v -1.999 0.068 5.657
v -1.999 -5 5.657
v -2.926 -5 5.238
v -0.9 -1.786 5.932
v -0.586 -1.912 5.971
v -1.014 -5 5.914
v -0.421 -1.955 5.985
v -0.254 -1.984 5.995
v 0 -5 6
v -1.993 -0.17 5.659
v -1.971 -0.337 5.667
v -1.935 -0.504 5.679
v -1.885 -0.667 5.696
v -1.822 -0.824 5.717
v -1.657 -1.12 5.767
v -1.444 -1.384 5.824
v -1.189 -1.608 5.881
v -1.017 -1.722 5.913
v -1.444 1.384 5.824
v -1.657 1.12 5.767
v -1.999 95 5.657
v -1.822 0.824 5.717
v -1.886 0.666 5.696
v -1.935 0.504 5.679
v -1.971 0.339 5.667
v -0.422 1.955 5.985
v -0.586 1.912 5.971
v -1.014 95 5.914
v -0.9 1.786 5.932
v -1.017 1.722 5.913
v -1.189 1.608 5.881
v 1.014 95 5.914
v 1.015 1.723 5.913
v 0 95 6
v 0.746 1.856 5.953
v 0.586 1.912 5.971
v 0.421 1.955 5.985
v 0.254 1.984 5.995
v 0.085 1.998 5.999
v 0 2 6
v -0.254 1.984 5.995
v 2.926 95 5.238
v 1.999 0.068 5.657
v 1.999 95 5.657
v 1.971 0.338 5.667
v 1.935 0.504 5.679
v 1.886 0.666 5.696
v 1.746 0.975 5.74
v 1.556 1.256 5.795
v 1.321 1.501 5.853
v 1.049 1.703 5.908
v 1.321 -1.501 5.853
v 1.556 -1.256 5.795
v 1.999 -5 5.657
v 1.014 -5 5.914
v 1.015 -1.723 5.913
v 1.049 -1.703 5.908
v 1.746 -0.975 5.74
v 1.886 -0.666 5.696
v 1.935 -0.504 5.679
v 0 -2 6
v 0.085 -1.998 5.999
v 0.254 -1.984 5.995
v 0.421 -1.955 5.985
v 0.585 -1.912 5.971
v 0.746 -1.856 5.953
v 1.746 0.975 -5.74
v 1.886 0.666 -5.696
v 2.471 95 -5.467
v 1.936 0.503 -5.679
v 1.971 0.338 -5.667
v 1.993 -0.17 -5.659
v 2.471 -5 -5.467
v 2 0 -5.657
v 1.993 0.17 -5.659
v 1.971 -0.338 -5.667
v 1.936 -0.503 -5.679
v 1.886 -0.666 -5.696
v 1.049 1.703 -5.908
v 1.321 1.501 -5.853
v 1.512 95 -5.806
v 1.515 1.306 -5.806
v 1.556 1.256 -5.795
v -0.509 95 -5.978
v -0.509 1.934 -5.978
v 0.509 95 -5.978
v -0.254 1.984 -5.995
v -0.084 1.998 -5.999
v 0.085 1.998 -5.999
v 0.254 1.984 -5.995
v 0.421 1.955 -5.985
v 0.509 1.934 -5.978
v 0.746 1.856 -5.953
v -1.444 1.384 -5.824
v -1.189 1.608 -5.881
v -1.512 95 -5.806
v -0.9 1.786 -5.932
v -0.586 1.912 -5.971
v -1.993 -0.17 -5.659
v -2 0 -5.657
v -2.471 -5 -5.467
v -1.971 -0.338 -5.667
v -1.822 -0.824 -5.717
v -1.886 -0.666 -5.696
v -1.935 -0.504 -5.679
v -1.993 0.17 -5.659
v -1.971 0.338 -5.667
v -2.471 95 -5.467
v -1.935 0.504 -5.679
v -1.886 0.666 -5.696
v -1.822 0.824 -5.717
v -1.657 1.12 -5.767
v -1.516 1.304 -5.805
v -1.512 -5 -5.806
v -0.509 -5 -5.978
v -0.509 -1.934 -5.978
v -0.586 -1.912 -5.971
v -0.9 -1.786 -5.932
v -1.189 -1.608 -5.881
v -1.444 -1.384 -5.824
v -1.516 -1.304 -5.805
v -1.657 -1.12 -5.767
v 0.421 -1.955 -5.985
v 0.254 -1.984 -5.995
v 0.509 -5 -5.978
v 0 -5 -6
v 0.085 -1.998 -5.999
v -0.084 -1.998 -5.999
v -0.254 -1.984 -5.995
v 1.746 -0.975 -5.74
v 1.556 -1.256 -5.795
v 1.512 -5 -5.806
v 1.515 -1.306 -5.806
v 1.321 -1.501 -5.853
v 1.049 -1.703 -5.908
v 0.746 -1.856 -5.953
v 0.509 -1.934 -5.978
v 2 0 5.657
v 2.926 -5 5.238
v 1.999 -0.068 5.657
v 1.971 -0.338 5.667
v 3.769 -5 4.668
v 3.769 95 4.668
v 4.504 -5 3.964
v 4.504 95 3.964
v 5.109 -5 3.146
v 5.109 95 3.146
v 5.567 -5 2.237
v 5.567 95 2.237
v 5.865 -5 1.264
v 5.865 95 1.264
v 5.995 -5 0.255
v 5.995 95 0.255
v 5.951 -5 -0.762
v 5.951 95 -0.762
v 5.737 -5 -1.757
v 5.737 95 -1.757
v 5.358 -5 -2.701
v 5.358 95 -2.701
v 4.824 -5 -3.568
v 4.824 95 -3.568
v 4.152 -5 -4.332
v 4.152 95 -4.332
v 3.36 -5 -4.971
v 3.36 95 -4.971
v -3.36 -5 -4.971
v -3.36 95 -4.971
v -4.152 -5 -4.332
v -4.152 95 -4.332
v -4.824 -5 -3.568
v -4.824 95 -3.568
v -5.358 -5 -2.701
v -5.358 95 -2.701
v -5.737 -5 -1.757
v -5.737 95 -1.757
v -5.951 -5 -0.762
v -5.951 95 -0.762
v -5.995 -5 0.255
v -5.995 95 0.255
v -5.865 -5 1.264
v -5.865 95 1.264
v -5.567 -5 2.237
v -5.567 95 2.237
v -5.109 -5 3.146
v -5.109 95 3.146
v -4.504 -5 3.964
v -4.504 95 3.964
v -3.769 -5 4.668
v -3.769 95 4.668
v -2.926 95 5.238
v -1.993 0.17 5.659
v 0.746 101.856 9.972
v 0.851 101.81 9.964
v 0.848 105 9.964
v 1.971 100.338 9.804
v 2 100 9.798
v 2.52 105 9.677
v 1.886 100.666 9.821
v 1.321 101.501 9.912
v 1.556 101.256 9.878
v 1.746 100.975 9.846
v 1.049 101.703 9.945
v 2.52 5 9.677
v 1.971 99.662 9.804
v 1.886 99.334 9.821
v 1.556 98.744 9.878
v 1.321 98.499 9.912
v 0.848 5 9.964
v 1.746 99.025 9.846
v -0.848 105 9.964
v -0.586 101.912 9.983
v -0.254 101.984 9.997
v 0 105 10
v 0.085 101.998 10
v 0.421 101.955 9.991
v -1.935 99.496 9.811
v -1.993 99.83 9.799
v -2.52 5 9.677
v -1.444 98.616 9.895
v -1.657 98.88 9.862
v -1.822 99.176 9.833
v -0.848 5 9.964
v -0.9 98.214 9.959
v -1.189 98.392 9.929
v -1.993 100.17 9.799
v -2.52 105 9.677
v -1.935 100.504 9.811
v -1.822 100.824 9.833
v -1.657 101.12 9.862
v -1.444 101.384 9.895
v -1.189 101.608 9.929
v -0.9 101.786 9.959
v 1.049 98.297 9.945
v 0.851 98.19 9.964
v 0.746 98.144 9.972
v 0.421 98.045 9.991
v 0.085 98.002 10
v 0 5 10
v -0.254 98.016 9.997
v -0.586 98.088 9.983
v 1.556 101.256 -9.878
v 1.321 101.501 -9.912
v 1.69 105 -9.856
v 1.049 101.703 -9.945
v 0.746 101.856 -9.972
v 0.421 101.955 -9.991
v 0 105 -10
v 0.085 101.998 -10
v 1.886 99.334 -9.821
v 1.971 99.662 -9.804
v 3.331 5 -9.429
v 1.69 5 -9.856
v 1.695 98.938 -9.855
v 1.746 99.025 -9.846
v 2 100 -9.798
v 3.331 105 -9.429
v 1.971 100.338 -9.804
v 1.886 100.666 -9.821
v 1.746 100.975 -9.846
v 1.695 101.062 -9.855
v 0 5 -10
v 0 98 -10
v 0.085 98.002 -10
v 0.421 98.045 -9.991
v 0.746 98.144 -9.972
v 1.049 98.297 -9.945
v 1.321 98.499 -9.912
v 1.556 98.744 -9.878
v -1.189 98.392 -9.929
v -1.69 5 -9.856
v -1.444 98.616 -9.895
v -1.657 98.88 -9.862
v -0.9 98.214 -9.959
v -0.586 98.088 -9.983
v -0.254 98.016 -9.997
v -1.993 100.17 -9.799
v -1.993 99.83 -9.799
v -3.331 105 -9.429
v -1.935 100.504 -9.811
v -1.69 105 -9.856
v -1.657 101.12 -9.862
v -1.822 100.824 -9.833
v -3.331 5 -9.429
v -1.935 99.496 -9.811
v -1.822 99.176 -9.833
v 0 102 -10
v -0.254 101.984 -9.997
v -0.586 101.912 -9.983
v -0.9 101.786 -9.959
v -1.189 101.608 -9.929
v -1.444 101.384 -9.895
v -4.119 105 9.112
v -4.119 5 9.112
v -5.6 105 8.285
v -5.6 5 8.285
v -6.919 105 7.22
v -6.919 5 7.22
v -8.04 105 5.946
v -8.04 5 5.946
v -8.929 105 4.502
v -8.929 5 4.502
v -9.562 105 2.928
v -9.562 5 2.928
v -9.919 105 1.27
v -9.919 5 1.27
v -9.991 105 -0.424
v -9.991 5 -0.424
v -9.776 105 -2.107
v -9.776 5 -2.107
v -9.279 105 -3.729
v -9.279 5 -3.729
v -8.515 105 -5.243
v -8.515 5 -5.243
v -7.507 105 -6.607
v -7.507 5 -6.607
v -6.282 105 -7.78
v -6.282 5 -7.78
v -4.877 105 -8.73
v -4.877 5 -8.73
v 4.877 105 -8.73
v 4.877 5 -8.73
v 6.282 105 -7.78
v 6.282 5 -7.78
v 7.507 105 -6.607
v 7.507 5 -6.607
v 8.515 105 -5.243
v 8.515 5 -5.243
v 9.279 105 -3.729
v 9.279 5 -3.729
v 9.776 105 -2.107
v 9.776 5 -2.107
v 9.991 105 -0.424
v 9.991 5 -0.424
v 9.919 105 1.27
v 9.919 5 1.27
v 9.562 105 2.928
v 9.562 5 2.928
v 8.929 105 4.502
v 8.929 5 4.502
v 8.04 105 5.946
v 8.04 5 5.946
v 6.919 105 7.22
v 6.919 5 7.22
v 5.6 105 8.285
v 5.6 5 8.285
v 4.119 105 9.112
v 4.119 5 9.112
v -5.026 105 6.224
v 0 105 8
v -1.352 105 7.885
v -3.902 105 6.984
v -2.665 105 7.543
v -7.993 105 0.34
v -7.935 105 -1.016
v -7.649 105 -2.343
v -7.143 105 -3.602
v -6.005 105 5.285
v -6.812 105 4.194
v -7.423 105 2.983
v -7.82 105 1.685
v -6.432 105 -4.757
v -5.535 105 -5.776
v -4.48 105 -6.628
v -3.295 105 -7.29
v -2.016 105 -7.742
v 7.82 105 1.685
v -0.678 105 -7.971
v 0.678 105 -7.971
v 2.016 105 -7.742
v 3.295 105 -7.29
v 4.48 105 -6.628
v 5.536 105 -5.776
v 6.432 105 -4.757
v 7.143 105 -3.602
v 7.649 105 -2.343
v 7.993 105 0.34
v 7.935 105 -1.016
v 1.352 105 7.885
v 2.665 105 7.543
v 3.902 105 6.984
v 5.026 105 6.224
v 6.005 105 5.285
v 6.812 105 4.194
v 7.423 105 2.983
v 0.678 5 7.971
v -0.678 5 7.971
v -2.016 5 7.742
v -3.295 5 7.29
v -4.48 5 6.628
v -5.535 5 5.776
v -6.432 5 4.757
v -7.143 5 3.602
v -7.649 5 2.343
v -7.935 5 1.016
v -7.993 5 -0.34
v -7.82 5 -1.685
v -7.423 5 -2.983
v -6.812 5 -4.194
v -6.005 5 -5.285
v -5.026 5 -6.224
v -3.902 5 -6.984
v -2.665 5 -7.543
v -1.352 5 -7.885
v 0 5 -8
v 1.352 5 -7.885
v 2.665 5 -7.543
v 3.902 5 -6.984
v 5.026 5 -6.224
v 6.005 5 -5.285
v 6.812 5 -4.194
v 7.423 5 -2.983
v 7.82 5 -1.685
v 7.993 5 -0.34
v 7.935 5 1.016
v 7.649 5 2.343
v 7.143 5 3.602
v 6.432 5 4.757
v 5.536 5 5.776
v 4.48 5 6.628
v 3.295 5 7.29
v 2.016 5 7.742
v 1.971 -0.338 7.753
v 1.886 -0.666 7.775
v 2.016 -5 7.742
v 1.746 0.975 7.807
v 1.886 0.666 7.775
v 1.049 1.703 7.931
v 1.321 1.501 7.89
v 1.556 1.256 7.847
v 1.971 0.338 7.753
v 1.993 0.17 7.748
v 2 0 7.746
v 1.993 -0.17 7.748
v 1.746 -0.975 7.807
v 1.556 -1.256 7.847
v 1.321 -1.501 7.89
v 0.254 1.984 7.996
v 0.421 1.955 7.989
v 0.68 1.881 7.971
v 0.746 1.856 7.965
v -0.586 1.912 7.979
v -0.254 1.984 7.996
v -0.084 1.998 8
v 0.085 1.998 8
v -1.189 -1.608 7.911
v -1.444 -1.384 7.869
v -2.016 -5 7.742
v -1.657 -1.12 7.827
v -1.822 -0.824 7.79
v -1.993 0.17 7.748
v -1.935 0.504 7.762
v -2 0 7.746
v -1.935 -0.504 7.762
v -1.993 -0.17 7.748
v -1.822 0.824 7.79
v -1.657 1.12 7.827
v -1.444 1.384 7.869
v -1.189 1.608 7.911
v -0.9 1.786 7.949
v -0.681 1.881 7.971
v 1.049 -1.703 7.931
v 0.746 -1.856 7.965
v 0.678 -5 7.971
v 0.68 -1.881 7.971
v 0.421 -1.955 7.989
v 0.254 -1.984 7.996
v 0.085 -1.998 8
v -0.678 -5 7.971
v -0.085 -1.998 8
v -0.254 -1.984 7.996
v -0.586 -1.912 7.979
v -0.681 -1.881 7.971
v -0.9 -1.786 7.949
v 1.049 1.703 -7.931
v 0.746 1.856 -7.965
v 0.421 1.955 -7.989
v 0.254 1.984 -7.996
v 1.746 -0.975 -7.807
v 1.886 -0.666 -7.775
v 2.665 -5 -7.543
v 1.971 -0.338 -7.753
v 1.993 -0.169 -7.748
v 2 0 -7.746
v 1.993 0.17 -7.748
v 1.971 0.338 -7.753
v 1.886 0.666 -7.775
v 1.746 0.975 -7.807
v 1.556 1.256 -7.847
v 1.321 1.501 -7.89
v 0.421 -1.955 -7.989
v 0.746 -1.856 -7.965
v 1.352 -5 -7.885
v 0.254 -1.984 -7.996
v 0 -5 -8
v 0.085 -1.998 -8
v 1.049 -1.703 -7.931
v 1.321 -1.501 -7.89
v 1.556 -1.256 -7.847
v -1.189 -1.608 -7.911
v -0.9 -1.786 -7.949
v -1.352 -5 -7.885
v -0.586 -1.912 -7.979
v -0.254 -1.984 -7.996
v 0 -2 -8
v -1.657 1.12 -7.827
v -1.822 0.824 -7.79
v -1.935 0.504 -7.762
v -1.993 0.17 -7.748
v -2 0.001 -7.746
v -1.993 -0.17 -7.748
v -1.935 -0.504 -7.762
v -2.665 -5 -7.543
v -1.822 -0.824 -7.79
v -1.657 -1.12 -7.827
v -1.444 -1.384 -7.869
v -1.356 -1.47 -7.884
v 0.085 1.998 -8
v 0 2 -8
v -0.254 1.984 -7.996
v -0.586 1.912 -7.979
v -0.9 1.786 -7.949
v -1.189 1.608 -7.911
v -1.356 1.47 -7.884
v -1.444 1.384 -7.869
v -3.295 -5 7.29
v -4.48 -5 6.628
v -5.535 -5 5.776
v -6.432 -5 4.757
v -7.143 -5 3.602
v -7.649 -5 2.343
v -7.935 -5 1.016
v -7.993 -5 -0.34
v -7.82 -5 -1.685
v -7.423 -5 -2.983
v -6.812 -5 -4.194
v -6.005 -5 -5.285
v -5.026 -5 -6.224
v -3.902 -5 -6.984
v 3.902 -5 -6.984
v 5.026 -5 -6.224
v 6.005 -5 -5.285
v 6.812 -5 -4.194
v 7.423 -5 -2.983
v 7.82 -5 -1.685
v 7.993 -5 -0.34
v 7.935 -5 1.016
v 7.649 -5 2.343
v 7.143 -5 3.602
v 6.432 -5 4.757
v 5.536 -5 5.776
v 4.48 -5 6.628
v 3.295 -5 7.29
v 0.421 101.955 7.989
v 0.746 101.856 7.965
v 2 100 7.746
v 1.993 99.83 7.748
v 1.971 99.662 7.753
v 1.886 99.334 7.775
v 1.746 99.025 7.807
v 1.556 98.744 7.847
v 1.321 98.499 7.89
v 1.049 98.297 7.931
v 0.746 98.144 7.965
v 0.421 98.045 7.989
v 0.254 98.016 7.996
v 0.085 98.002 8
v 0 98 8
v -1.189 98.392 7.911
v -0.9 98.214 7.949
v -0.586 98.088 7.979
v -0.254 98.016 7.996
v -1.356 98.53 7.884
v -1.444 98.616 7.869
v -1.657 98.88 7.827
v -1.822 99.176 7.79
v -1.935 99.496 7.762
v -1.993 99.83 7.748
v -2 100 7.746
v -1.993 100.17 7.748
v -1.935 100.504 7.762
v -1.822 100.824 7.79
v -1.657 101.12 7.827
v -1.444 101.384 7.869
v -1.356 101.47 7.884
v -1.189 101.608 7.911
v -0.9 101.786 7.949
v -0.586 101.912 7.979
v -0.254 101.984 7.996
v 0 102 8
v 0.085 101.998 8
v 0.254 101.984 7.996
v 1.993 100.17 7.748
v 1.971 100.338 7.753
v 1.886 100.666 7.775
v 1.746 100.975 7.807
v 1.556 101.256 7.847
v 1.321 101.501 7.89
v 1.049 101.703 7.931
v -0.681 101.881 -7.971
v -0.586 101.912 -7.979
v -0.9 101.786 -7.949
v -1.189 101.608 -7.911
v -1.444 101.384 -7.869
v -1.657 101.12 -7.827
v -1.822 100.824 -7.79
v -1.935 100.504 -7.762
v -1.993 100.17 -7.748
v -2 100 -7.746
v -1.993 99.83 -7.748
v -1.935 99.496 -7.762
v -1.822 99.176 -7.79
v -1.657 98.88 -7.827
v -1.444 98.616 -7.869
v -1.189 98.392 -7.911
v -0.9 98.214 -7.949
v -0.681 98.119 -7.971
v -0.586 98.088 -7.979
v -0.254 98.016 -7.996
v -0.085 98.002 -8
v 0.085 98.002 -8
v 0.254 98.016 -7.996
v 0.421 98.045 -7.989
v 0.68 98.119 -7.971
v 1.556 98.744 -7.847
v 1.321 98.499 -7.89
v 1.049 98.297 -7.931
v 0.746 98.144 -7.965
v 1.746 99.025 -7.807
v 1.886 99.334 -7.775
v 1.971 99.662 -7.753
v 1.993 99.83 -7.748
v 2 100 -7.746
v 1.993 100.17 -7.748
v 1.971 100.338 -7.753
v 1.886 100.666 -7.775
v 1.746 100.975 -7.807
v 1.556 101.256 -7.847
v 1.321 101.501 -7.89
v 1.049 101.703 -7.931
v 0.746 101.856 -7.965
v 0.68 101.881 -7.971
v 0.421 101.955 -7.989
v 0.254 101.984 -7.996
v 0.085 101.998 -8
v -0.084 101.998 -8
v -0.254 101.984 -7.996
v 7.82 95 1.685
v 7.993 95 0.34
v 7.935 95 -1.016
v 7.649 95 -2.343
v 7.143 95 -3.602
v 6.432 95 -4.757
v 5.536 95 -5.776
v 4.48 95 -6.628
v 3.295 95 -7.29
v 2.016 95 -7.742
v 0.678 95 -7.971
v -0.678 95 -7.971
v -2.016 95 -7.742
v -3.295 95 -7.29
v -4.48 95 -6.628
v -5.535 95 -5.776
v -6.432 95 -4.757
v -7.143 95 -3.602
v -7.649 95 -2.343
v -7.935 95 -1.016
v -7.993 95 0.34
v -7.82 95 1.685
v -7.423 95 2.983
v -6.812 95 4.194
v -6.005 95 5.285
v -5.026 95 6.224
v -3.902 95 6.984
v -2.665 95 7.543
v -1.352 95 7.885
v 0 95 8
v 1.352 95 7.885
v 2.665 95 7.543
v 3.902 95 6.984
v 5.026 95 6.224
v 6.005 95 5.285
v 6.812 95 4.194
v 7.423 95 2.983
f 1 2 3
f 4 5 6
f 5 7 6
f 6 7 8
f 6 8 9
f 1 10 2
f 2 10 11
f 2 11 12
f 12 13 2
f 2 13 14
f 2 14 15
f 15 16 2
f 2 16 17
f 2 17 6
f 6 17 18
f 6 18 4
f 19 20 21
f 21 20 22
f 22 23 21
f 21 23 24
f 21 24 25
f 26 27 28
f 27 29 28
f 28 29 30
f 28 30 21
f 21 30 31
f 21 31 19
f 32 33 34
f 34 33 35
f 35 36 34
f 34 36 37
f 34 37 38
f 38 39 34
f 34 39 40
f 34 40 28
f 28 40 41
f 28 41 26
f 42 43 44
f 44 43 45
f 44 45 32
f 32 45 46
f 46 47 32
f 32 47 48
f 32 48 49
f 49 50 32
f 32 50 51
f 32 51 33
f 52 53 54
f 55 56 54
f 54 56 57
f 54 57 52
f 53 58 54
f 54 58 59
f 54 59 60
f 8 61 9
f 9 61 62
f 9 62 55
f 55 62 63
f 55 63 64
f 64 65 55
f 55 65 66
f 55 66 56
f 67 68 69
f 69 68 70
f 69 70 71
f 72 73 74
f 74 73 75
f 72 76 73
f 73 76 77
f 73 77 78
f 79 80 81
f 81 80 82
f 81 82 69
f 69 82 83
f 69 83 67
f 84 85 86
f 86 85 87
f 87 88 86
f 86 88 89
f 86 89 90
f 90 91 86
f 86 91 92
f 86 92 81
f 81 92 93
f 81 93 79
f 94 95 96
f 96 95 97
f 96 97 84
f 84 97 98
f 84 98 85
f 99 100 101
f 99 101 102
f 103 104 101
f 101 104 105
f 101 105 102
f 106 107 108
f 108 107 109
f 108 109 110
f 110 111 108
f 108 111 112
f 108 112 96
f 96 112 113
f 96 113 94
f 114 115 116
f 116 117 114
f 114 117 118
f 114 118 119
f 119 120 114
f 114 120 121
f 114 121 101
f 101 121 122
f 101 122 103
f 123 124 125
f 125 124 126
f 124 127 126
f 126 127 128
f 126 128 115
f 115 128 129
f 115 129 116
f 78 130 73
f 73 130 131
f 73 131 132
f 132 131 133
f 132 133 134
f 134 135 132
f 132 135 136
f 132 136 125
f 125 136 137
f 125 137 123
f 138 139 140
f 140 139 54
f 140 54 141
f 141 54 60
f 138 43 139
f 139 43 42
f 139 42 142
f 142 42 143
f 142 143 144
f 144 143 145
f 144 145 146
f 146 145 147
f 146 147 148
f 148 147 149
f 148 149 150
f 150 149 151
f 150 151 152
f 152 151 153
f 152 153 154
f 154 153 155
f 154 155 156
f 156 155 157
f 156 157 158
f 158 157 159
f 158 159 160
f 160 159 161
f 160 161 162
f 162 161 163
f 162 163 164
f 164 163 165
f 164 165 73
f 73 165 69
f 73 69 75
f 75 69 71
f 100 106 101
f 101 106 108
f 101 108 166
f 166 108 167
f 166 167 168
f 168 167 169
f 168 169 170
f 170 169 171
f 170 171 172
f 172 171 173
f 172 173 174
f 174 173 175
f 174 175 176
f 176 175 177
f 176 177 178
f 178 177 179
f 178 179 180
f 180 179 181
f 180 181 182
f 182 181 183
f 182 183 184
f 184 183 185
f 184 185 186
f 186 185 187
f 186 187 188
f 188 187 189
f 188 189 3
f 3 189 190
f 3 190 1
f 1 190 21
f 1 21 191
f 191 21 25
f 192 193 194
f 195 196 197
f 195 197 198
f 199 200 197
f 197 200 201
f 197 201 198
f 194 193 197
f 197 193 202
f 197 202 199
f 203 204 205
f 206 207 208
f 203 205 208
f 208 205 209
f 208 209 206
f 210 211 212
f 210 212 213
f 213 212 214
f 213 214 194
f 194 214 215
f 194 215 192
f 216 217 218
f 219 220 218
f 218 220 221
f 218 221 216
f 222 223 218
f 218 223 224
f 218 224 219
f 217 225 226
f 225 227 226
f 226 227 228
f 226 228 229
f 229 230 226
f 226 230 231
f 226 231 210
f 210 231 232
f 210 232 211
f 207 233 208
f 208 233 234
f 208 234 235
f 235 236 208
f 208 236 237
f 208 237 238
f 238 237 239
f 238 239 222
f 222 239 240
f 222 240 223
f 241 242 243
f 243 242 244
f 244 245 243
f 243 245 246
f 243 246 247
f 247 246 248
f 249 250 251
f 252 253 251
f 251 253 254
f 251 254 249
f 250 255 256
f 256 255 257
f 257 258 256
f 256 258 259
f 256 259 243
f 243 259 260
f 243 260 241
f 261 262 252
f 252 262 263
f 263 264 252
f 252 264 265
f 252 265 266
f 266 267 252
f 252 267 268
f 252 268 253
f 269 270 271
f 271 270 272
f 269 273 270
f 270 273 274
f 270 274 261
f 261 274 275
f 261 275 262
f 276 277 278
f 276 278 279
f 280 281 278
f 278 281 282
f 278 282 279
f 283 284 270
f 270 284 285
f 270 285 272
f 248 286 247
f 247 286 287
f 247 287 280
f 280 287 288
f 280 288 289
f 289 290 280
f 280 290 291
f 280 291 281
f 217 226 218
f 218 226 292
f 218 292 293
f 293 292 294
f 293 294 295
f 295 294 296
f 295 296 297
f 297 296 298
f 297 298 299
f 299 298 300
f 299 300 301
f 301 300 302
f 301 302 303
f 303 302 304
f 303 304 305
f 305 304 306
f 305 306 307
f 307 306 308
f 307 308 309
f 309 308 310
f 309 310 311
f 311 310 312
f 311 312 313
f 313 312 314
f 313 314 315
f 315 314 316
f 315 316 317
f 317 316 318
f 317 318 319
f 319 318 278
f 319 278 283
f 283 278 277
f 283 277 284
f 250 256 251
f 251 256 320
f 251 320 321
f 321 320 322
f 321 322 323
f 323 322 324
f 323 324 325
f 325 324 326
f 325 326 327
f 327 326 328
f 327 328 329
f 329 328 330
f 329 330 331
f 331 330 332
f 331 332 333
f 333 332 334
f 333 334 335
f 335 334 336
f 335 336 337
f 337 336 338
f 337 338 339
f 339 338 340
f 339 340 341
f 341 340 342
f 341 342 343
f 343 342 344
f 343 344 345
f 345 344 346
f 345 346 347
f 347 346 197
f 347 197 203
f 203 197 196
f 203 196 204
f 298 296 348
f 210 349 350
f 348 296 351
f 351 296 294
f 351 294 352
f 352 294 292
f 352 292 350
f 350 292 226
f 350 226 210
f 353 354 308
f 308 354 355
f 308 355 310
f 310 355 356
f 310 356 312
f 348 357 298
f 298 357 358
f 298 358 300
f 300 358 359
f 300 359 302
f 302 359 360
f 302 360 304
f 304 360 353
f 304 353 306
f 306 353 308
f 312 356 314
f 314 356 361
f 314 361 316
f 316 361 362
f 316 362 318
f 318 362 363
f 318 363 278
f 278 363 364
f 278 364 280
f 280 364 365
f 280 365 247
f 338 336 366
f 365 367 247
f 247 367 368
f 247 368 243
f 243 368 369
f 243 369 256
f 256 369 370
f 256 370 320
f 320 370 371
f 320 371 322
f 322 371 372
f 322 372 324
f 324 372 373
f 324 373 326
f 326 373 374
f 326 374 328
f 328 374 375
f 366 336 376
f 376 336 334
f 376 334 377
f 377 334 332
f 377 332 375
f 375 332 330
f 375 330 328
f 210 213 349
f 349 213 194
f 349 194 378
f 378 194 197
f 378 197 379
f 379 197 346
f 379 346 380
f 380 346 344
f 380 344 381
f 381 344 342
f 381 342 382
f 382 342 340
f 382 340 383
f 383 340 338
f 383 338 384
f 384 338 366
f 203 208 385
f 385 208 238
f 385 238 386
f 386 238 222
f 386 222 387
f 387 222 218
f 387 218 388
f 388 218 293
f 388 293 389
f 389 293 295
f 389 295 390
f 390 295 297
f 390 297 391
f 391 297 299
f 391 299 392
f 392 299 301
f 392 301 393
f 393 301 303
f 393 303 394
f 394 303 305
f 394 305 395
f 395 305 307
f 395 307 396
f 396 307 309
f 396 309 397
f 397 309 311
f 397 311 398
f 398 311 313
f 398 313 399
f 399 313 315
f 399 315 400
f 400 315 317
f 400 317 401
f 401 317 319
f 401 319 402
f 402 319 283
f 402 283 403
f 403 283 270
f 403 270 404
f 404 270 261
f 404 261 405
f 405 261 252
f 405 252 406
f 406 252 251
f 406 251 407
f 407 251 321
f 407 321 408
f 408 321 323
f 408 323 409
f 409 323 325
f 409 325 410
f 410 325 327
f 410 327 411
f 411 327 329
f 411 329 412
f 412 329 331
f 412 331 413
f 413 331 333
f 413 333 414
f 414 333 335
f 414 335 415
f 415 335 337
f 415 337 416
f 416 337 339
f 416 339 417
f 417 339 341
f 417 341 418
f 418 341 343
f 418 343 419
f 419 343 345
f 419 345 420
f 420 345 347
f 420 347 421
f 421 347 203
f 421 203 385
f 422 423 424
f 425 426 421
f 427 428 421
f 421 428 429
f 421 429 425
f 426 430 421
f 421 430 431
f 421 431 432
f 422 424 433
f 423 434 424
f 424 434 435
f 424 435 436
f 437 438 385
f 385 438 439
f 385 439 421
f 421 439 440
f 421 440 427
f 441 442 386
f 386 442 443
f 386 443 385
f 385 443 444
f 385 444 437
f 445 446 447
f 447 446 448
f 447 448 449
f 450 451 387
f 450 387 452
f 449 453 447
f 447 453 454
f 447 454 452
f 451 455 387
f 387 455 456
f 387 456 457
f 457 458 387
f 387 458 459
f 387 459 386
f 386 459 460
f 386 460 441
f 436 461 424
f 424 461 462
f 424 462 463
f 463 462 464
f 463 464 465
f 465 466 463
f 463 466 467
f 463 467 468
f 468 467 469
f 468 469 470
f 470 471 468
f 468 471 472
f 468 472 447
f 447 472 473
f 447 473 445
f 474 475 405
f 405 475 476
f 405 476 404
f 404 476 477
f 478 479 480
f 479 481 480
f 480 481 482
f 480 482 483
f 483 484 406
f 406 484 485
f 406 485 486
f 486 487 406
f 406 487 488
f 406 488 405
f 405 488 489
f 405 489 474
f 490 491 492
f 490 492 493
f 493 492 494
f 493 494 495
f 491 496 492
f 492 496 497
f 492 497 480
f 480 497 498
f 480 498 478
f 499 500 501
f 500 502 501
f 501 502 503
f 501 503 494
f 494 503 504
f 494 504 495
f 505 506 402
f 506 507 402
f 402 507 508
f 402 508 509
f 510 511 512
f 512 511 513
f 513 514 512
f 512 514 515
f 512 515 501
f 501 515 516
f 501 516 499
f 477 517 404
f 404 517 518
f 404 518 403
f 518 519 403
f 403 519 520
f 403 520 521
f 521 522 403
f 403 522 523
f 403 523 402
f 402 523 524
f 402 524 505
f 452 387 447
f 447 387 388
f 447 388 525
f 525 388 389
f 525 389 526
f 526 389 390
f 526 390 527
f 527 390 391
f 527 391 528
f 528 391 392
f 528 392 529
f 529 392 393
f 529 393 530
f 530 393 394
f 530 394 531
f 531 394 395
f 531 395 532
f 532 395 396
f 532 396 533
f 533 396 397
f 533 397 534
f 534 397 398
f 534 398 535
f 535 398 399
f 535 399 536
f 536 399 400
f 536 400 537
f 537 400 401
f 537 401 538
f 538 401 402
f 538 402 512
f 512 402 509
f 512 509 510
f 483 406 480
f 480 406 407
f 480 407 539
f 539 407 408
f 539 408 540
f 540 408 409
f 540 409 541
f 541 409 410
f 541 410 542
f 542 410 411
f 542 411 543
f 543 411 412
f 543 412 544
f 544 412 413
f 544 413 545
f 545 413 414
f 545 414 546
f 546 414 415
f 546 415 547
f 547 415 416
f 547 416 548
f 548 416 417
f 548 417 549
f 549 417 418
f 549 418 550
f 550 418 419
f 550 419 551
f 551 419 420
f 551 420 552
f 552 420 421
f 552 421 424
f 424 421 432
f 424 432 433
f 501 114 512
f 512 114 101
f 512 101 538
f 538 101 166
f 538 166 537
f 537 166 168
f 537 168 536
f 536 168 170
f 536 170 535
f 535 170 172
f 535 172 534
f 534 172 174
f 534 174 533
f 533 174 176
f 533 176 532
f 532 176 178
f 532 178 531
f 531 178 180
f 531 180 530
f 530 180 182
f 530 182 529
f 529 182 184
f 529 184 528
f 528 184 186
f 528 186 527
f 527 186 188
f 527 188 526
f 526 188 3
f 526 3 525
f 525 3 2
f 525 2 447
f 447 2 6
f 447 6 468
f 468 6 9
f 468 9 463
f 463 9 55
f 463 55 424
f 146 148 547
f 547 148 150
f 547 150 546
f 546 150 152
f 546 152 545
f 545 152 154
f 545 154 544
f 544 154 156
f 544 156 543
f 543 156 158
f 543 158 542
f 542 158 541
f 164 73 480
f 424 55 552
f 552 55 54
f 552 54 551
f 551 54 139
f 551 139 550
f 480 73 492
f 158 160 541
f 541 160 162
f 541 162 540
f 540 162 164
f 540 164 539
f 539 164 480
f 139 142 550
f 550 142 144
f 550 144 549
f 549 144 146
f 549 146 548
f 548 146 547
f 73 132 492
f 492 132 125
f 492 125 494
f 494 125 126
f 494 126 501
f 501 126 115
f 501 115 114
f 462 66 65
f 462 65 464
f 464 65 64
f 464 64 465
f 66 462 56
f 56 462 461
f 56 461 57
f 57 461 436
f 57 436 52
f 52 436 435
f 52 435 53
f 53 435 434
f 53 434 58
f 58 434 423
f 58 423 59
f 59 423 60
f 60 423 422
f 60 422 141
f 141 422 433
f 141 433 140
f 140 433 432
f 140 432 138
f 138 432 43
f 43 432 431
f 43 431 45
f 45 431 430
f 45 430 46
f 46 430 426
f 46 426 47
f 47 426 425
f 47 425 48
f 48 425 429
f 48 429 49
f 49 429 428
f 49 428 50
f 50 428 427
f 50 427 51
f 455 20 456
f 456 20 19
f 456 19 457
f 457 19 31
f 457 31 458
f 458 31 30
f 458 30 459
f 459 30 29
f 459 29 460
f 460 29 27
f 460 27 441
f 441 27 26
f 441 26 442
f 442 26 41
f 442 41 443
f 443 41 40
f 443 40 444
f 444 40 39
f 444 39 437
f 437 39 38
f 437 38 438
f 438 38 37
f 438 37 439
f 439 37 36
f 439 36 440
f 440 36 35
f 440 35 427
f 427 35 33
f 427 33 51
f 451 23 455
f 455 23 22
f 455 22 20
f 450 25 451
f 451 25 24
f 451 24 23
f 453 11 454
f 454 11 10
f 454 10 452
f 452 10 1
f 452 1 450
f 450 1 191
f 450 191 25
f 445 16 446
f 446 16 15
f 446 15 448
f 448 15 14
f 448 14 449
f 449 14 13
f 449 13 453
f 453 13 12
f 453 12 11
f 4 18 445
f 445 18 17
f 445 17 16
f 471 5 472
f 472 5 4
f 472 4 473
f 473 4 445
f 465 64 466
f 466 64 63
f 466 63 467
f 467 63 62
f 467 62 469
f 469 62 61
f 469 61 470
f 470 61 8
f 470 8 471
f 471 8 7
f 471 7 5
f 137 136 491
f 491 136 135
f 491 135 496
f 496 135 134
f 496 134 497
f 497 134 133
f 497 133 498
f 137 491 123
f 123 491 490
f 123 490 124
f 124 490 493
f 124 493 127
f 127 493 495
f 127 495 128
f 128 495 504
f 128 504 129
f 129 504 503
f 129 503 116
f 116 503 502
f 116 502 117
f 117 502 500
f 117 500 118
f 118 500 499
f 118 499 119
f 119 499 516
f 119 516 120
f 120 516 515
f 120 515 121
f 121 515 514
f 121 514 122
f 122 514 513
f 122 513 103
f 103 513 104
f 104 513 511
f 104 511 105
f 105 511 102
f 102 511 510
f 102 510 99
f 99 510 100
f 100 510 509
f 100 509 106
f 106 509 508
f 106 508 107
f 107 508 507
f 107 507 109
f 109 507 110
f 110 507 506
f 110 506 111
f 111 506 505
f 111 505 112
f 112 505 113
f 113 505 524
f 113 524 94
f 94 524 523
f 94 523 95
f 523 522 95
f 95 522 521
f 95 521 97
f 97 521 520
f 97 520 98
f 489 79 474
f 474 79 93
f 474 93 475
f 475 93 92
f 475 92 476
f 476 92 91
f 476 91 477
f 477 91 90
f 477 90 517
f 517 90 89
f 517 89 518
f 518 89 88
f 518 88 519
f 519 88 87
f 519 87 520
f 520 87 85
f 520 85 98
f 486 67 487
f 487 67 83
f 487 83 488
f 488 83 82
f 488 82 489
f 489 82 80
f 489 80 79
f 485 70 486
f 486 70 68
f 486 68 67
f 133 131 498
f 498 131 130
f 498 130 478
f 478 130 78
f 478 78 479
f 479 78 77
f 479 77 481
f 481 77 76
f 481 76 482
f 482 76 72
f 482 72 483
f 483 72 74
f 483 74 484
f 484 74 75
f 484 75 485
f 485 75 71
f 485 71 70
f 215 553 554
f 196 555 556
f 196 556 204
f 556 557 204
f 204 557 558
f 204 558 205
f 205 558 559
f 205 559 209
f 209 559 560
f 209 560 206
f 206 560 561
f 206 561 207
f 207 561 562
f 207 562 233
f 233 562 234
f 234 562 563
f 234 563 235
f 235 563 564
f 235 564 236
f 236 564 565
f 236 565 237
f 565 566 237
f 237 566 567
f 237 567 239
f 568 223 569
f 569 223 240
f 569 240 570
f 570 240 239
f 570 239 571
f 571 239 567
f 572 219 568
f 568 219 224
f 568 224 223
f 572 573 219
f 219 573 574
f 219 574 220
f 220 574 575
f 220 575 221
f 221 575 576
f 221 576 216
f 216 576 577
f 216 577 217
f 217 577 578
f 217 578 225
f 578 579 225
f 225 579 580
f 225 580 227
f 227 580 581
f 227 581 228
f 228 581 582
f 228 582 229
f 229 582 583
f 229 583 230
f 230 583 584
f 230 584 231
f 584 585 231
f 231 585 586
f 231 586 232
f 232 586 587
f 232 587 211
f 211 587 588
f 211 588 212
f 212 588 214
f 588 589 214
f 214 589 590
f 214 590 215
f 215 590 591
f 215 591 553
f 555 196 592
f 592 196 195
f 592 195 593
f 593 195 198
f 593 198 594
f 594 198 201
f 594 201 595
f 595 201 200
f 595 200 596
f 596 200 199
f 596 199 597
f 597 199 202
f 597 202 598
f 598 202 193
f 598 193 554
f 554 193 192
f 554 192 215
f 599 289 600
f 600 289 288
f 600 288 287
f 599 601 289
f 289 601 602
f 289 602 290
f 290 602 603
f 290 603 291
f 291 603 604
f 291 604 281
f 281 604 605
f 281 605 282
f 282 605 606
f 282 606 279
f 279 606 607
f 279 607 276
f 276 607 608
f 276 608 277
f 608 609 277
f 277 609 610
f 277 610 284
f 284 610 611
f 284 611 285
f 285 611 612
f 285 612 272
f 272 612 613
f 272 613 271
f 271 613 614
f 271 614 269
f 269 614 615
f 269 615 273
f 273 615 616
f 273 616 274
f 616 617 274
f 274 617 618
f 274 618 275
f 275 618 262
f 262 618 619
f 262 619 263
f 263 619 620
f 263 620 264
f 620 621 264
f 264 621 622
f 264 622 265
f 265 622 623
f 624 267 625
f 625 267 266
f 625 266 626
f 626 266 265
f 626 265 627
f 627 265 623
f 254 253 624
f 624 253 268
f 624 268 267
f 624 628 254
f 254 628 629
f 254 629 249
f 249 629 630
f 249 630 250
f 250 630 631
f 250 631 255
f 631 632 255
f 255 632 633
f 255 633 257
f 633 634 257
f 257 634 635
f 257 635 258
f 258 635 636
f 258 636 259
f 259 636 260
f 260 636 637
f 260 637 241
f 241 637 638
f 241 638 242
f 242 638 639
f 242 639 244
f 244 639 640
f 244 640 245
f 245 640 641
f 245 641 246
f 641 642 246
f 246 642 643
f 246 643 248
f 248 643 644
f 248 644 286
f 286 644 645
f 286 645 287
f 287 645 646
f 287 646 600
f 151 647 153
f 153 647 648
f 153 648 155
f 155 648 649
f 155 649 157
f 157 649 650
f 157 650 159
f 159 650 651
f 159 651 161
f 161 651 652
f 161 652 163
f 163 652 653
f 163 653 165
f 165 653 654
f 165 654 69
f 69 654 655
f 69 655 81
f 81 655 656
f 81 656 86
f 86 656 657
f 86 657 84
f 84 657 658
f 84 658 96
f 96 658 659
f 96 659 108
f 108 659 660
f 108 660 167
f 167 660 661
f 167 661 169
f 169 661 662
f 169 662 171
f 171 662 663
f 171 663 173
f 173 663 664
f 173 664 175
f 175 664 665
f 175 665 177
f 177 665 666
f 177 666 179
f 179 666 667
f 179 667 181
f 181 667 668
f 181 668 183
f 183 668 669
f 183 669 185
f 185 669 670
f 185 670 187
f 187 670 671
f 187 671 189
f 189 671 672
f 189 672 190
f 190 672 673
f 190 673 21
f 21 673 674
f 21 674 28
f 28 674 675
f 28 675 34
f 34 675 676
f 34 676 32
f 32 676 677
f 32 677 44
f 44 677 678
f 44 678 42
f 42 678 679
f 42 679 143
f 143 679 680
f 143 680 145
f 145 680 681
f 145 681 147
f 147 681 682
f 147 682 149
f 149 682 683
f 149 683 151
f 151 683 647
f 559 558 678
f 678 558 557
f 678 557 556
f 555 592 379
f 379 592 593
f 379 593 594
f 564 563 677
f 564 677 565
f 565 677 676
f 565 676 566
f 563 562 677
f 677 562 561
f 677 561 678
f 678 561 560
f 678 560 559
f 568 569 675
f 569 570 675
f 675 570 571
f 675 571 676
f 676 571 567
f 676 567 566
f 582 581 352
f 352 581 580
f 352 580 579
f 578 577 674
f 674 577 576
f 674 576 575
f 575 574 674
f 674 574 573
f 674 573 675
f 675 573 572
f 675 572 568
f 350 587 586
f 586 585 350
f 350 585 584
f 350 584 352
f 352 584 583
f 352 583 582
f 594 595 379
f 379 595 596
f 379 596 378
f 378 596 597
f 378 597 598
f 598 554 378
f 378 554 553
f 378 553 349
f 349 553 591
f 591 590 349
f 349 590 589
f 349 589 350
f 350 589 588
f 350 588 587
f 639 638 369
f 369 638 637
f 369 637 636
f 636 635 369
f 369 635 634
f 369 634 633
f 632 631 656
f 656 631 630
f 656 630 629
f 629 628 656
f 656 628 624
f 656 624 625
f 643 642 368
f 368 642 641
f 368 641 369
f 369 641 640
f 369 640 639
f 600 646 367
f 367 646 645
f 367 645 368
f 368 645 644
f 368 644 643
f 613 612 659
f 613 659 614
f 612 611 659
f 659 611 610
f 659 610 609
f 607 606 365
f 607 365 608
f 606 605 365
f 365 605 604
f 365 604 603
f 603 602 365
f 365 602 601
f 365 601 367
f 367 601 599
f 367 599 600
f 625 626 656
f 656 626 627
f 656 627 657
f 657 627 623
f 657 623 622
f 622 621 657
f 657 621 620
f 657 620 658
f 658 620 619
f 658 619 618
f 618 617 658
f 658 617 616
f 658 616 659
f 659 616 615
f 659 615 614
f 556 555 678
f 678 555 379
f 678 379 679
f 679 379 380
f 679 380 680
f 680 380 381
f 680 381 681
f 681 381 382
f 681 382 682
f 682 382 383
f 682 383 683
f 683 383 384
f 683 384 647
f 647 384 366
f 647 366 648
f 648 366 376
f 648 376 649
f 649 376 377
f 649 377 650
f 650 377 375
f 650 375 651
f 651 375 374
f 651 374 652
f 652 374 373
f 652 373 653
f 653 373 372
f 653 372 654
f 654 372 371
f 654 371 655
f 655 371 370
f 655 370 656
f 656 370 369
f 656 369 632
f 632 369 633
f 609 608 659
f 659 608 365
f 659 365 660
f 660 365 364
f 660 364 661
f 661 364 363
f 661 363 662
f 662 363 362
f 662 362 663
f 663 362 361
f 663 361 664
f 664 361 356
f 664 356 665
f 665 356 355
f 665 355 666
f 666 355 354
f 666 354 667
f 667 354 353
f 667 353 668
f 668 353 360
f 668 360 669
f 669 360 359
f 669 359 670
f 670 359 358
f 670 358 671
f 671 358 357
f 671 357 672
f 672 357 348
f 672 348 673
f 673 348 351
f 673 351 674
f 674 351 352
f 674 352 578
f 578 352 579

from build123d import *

# Parameters (mm, degrees)
SKETCH2_R           = 7.9
BOSS_EXTRUDE1_DEPTH = 5
SKETCH3_R           = 10
BOSS_EXTRUDE2_DEPTH = 100
SKETCH4_R           = 6
CUT_EXTRUDE2_DEPTH  = 200
SKETCH5_R           = 8
BOSS_EXTRUDE3_DEPTH = 5
CUT_EXTRUDE3_START  = -5
SKETCH6_R           = 6
CUT_EXTRUDE3_DEPTH  = 5
BOSS_EXTRUDE5_START = 5
SKETCH10_R          = 8
BOSS_EXTRUDE5_DEPTH = 5
CUT_EXTRUDE5_START  = -10
SKETCH11_R          = 6
CUT_EXTRUDE5_DEPTH  = 10
SKETCH12_R          = 2
CUT_EXTRUDE6_DEPTH  = 20
SKETCH13_R          = 2
CUT_EXTRUDE7_DEPTH  = 20
CUT_EXTRUDE9_START  = -10
SKETCH15_R          = 8
CUT_EXTRUDE9_DEPTH  = 10


with BuildPart() as part:
    # Sketch2 → Boss-Extrude1 (new body)
    with BuildSketch(Plane(origin=(0, 0, 0), x_dir=(1, 0, 0), z_dir=(0, 1, 0))):
        with Locations(Location((0, 0, 0), (0, 0, 270))):
            Circle(SKETCH2_R)
    extrude(amount=BOSS_EXTRUDE1_DEPTH)

    # Sketch3 → Boss-Extrude2 (add)
    with BuildSketch(Plane(origin=(0, 5, 0), x_dir=(1, 0, 0), z_dir=(0, 1, 0))):
        with Locations(Location((0, 0, 0), (0, 0, 270))):
            Circle(SKETCH3_R)
    extrude(amount=BOSS_EXTRUDE2_DEPTH)

    # Sketch4 → Cut-Extrude2 (cut)
    with BuildSketch(Plane(origin=(0, 105, 0), x_dir=(1, 0, 0), z_dir=(0, 1, 0))):
        with Locations(Location((0, 0, 0), (0, 0, 270))):
            Circle(SKETCH4_R)
    extrude(amount=-CUT_EXTRUDE2_DEPTH, mode=Mode.SUBTRACT)

    # Sketch5 → Boss-Extrude3 (add)
    with BuildSketch(Plane(origin=(0, 0, 0), x_dir=(-1, 0, 0), z_dir=(0, -1, 0))):
        with Locations(Location((0, 0, 0), (0, 0, 90))):
            Circle(SKETCH5_R)
    extrude(amount=-BOSS_EXTRUDE3_DEPTH)

    # Sketch6 → Cut-Extrude3 (cut)
    with BuildSketch(Plane(origin=(0, 0, 0), x_dir=(-1, 0, 0), z_dir=(0, -1, 0)).offset(CUT_EXTRUDE3_START)):
        with Locations(Location((0, 0, 0), (0, 0, 270))):
            Circle(SKETCH6_R)
    extrude(amount=CUT_EXTRUDE3_DEPTH, mode=Mode.SUBTRACT)

    # Sketch10 → Boss-Extrude5 (add)
    with BuildSketch(Plane(origin=(0, 0, 0), x_dir=(-1, 0, 0), z_dir=(0, -1, 0)).offset(BOSS_EXTRUDE5_START)):
        with Locations(Location((0, 0, 0), (0, 0, 90))):
            Circle(SKETCH10_R)
    extrude(amount=-BOSS_EXTRUDE5_DEPTH)

    # Sketch11 → Cut-Extrude5 (cut)
    with BuildSketch(Plane(origin=(0, -5, 0), x_dir=(-1, 0, 0), z_dir=(0, -1, 0)).offset(CUT_EXTRUDE5_START)):
        with Locations(Location((0, 0, 0), (0, 0, 270))):
            Circle(SKETCH11_R)
    extrude(amount=CUT_EXTRUDE5_DEPTH, mode=Mode.SUBTRACT)

    # Sketch12 → Cut-Extrude6 (cut)
    with BuildSketch(Plane.XY.offset(10)):
        Circle(SKETCH12_R)
    extrude(amount=-CUT_EXTRUDE6_DEPTH, mode=Mode.SUBTRACT)

    # Sketch13 → Cut-Extrude7 (cut)
    with BuildSketch(Plane.XY.offset(10)):
        with Locations(Location((0, 100, 0), (0, 0, 270.000000021))):
            Circle(SKETCH13_R)
    extrude(amount=-CUT_EXTRUDE7_DEPTH, mode=Mode.SUBTRACT)

    # Sketch15 → Cut-Extrude9 (cut)
    with BuildSketch(Plane(origin=(0, 105, 0), x_dir=(1, 0, 0), z_dir=(0, 1, 0)).offset(CUT_EXTRUDE9_START)):
        with Locations(Location((0, 0, 0), (0, 0, 90))):
            Circle(SKETCH15_R)
    extrude(amount=CUT_EXTRUDE9_DEPTH, mode=Mode.SUBTRACT)


solid = part.part
